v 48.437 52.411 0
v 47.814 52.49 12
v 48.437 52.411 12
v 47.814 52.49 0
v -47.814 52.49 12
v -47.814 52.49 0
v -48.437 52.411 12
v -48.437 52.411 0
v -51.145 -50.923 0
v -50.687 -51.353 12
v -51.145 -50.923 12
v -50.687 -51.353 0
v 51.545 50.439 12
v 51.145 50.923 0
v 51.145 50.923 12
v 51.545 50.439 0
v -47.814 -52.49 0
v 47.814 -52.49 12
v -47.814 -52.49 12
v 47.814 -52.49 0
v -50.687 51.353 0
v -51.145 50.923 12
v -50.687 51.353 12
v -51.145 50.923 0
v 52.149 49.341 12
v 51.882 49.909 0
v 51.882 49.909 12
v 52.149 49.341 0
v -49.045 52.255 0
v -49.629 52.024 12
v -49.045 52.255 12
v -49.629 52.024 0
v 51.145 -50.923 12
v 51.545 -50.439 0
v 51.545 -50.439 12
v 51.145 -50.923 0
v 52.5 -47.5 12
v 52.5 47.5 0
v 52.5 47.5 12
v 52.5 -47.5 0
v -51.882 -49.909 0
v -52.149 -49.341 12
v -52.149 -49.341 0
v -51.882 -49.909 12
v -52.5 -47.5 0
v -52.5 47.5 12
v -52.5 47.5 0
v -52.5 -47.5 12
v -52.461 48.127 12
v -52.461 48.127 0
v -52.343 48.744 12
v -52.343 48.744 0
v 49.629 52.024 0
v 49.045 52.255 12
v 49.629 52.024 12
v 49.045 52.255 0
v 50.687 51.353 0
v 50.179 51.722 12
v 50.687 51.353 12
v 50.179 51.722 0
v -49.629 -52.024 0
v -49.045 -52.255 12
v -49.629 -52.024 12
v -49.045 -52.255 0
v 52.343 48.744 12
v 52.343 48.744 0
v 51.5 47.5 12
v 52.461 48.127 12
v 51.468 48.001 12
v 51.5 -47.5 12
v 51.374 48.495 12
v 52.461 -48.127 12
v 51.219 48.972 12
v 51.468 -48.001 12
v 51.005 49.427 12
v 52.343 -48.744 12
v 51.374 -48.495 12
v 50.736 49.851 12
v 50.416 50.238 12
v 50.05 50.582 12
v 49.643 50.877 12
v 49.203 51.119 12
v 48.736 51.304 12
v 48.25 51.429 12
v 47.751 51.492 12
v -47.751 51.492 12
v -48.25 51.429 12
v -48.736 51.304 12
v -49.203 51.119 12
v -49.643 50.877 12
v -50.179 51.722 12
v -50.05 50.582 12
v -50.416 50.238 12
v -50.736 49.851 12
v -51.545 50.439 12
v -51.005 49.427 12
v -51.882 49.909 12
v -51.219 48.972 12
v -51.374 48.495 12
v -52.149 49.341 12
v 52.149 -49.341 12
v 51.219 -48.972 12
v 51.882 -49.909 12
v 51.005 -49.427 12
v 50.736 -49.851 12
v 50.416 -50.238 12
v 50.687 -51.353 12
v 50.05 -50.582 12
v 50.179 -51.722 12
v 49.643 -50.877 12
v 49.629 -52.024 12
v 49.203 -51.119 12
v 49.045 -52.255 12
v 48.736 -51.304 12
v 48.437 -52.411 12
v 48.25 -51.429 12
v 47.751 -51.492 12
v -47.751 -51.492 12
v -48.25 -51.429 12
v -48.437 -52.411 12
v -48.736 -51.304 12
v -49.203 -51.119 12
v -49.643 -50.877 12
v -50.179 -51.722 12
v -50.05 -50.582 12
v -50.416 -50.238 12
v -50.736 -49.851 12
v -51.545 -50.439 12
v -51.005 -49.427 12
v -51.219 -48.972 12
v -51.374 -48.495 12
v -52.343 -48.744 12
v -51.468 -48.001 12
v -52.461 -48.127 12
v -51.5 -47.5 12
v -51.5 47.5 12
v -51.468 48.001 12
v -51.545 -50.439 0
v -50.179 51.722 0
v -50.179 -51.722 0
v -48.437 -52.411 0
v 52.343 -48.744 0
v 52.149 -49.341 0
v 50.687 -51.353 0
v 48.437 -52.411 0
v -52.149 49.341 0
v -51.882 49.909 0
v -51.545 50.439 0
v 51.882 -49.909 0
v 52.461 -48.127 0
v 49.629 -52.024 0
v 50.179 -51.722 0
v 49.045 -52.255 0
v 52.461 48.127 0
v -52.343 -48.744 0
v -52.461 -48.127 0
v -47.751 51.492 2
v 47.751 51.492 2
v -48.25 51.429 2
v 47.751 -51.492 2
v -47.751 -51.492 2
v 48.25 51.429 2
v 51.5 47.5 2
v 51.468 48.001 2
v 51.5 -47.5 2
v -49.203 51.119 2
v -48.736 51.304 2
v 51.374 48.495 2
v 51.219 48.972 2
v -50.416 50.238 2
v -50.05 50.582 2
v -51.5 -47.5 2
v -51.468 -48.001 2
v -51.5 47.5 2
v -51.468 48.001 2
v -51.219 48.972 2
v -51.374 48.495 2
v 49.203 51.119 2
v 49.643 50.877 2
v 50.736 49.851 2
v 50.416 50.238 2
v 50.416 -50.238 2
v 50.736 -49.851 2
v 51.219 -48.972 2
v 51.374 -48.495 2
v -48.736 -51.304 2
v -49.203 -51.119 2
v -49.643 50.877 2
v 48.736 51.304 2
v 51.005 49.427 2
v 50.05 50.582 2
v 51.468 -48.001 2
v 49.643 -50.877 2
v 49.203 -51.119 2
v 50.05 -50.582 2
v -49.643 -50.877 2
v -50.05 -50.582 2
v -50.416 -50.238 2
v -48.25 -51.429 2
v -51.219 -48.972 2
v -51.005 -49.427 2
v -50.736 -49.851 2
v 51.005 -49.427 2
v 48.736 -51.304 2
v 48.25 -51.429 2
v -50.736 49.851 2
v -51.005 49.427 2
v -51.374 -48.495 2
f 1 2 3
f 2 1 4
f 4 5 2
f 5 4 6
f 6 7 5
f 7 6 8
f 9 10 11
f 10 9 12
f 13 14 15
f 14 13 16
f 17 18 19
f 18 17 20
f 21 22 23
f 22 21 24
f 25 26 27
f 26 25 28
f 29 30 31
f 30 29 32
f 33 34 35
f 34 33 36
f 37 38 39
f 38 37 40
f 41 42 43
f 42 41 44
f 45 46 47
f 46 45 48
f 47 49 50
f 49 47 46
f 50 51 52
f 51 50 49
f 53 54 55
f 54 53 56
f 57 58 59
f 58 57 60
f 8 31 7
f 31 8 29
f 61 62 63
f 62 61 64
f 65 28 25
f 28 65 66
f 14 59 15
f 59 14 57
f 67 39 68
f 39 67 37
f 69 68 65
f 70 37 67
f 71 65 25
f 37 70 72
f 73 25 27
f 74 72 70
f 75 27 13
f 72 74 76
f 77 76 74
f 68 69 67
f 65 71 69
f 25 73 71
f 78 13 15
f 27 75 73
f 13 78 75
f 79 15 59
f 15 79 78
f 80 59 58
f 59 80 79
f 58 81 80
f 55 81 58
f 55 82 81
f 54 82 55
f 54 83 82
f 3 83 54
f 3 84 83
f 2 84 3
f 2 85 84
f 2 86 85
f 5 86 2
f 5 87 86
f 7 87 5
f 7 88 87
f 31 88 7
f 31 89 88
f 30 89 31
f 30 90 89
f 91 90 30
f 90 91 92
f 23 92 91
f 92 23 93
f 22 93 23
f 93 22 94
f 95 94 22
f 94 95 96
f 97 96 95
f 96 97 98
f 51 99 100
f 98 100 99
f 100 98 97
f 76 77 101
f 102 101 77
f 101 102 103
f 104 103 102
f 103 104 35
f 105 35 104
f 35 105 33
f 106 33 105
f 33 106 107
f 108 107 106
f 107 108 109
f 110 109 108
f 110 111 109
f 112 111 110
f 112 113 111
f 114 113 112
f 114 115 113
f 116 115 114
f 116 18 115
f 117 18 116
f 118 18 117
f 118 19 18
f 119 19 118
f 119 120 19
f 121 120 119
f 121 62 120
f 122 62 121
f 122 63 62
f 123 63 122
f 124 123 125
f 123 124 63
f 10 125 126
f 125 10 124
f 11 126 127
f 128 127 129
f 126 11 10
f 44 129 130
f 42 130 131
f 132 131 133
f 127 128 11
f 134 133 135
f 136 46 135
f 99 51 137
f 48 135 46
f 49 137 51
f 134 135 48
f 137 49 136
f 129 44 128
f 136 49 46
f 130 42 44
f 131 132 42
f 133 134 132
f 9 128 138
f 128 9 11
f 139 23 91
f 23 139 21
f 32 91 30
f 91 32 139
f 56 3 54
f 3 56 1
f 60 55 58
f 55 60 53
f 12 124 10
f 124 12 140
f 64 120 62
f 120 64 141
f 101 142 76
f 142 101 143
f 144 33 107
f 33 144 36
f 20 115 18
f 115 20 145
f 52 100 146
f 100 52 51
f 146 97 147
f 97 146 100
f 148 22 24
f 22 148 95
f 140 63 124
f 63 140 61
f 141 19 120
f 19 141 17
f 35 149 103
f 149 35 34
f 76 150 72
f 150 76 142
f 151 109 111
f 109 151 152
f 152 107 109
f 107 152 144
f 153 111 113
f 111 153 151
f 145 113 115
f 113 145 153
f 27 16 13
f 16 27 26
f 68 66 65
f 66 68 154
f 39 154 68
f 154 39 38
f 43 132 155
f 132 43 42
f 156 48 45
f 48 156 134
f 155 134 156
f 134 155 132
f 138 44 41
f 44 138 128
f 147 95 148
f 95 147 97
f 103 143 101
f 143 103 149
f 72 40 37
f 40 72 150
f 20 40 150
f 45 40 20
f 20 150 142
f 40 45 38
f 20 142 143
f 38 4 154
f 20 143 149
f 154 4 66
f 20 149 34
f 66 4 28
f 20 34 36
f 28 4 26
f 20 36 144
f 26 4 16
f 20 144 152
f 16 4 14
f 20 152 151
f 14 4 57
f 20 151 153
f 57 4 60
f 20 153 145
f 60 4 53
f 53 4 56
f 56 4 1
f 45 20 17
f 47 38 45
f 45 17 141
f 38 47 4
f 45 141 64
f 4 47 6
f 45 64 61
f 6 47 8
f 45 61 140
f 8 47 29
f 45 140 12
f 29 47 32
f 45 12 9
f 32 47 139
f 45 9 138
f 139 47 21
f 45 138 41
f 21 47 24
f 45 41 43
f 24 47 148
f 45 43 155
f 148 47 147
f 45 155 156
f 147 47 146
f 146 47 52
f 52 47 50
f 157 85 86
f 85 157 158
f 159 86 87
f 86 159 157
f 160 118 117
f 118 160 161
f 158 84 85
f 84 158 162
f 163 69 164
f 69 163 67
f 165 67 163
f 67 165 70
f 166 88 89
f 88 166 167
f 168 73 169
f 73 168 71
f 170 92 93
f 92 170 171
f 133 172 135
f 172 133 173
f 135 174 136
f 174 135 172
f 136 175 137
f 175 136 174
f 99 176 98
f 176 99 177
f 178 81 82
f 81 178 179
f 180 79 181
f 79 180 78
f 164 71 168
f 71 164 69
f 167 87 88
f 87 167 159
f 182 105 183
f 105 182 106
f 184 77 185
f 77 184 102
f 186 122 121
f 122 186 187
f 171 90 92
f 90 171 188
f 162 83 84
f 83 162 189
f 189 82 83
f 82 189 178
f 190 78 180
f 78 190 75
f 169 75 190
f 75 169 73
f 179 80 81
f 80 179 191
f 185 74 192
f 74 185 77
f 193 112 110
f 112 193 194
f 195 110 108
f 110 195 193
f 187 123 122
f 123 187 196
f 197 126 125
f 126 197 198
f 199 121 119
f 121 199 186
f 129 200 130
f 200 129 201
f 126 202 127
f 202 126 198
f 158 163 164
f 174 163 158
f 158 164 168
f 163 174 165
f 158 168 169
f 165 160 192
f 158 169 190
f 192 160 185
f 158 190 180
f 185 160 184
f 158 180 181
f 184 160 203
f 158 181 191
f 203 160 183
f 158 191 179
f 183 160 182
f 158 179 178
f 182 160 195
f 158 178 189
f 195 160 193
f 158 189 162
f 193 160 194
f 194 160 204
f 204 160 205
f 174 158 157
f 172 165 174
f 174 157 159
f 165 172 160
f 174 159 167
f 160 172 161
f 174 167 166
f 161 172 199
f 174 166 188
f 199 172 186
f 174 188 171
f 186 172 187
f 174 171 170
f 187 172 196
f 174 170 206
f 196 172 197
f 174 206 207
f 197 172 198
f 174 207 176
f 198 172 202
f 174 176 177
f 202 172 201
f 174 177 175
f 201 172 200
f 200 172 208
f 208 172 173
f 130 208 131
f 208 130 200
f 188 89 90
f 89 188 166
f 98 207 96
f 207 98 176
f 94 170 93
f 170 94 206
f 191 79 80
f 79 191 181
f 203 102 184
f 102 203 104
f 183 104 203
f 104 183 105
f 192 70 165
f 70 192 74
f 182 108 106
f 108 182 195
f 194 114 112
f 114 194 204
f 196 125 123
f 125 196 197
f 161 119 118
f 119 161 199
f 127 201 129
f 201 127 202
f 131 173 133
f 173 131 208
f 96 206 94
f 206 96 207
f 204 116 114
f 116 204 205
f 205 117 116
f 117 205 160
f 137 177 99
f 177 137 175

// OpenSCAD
$fn = 50;


difference() {
	union() {
		hull() {
			translate(v = [-47.5000000000, 47.5000000000, 0]) {
				cylinder(h = 12, r = 5);
			}
			translate(v = [47.5000000000, 47.5000000000, 0]) {
				cylinder(h = 12, r = 5);
			}
			translate(v = [-47.5000000000, -47.5000000000, 0]) {
				cylinder(h = 12, r = 5);
			}
			translate(v = [47.5000000000, -47.5000000000, 0]) {
				cylinder(h = 12, r = 5);
			}
		}
	}
	union() {
		translate(v = [0, 0, 2]) {
			hull() {
				translate(v = [-47.5000000000, 47.5000000000, 0]) {
					cylinder(h = 10, r = 4);
				}
				translate(v = [47.5000000000, 47.5000000000, 0]) {
					cylinder(h = 10, r = 4);
				}
				translate(v = [-47.5000000000, -47.5000000000, 0]) {
					cylinder(h = 10, r = 4);
				}
				translate(v = [47.5000000000, -47.5000000000, 0]) {
					cylinder(h = 10, r = 4);
				}
			}
		}
	}
}
